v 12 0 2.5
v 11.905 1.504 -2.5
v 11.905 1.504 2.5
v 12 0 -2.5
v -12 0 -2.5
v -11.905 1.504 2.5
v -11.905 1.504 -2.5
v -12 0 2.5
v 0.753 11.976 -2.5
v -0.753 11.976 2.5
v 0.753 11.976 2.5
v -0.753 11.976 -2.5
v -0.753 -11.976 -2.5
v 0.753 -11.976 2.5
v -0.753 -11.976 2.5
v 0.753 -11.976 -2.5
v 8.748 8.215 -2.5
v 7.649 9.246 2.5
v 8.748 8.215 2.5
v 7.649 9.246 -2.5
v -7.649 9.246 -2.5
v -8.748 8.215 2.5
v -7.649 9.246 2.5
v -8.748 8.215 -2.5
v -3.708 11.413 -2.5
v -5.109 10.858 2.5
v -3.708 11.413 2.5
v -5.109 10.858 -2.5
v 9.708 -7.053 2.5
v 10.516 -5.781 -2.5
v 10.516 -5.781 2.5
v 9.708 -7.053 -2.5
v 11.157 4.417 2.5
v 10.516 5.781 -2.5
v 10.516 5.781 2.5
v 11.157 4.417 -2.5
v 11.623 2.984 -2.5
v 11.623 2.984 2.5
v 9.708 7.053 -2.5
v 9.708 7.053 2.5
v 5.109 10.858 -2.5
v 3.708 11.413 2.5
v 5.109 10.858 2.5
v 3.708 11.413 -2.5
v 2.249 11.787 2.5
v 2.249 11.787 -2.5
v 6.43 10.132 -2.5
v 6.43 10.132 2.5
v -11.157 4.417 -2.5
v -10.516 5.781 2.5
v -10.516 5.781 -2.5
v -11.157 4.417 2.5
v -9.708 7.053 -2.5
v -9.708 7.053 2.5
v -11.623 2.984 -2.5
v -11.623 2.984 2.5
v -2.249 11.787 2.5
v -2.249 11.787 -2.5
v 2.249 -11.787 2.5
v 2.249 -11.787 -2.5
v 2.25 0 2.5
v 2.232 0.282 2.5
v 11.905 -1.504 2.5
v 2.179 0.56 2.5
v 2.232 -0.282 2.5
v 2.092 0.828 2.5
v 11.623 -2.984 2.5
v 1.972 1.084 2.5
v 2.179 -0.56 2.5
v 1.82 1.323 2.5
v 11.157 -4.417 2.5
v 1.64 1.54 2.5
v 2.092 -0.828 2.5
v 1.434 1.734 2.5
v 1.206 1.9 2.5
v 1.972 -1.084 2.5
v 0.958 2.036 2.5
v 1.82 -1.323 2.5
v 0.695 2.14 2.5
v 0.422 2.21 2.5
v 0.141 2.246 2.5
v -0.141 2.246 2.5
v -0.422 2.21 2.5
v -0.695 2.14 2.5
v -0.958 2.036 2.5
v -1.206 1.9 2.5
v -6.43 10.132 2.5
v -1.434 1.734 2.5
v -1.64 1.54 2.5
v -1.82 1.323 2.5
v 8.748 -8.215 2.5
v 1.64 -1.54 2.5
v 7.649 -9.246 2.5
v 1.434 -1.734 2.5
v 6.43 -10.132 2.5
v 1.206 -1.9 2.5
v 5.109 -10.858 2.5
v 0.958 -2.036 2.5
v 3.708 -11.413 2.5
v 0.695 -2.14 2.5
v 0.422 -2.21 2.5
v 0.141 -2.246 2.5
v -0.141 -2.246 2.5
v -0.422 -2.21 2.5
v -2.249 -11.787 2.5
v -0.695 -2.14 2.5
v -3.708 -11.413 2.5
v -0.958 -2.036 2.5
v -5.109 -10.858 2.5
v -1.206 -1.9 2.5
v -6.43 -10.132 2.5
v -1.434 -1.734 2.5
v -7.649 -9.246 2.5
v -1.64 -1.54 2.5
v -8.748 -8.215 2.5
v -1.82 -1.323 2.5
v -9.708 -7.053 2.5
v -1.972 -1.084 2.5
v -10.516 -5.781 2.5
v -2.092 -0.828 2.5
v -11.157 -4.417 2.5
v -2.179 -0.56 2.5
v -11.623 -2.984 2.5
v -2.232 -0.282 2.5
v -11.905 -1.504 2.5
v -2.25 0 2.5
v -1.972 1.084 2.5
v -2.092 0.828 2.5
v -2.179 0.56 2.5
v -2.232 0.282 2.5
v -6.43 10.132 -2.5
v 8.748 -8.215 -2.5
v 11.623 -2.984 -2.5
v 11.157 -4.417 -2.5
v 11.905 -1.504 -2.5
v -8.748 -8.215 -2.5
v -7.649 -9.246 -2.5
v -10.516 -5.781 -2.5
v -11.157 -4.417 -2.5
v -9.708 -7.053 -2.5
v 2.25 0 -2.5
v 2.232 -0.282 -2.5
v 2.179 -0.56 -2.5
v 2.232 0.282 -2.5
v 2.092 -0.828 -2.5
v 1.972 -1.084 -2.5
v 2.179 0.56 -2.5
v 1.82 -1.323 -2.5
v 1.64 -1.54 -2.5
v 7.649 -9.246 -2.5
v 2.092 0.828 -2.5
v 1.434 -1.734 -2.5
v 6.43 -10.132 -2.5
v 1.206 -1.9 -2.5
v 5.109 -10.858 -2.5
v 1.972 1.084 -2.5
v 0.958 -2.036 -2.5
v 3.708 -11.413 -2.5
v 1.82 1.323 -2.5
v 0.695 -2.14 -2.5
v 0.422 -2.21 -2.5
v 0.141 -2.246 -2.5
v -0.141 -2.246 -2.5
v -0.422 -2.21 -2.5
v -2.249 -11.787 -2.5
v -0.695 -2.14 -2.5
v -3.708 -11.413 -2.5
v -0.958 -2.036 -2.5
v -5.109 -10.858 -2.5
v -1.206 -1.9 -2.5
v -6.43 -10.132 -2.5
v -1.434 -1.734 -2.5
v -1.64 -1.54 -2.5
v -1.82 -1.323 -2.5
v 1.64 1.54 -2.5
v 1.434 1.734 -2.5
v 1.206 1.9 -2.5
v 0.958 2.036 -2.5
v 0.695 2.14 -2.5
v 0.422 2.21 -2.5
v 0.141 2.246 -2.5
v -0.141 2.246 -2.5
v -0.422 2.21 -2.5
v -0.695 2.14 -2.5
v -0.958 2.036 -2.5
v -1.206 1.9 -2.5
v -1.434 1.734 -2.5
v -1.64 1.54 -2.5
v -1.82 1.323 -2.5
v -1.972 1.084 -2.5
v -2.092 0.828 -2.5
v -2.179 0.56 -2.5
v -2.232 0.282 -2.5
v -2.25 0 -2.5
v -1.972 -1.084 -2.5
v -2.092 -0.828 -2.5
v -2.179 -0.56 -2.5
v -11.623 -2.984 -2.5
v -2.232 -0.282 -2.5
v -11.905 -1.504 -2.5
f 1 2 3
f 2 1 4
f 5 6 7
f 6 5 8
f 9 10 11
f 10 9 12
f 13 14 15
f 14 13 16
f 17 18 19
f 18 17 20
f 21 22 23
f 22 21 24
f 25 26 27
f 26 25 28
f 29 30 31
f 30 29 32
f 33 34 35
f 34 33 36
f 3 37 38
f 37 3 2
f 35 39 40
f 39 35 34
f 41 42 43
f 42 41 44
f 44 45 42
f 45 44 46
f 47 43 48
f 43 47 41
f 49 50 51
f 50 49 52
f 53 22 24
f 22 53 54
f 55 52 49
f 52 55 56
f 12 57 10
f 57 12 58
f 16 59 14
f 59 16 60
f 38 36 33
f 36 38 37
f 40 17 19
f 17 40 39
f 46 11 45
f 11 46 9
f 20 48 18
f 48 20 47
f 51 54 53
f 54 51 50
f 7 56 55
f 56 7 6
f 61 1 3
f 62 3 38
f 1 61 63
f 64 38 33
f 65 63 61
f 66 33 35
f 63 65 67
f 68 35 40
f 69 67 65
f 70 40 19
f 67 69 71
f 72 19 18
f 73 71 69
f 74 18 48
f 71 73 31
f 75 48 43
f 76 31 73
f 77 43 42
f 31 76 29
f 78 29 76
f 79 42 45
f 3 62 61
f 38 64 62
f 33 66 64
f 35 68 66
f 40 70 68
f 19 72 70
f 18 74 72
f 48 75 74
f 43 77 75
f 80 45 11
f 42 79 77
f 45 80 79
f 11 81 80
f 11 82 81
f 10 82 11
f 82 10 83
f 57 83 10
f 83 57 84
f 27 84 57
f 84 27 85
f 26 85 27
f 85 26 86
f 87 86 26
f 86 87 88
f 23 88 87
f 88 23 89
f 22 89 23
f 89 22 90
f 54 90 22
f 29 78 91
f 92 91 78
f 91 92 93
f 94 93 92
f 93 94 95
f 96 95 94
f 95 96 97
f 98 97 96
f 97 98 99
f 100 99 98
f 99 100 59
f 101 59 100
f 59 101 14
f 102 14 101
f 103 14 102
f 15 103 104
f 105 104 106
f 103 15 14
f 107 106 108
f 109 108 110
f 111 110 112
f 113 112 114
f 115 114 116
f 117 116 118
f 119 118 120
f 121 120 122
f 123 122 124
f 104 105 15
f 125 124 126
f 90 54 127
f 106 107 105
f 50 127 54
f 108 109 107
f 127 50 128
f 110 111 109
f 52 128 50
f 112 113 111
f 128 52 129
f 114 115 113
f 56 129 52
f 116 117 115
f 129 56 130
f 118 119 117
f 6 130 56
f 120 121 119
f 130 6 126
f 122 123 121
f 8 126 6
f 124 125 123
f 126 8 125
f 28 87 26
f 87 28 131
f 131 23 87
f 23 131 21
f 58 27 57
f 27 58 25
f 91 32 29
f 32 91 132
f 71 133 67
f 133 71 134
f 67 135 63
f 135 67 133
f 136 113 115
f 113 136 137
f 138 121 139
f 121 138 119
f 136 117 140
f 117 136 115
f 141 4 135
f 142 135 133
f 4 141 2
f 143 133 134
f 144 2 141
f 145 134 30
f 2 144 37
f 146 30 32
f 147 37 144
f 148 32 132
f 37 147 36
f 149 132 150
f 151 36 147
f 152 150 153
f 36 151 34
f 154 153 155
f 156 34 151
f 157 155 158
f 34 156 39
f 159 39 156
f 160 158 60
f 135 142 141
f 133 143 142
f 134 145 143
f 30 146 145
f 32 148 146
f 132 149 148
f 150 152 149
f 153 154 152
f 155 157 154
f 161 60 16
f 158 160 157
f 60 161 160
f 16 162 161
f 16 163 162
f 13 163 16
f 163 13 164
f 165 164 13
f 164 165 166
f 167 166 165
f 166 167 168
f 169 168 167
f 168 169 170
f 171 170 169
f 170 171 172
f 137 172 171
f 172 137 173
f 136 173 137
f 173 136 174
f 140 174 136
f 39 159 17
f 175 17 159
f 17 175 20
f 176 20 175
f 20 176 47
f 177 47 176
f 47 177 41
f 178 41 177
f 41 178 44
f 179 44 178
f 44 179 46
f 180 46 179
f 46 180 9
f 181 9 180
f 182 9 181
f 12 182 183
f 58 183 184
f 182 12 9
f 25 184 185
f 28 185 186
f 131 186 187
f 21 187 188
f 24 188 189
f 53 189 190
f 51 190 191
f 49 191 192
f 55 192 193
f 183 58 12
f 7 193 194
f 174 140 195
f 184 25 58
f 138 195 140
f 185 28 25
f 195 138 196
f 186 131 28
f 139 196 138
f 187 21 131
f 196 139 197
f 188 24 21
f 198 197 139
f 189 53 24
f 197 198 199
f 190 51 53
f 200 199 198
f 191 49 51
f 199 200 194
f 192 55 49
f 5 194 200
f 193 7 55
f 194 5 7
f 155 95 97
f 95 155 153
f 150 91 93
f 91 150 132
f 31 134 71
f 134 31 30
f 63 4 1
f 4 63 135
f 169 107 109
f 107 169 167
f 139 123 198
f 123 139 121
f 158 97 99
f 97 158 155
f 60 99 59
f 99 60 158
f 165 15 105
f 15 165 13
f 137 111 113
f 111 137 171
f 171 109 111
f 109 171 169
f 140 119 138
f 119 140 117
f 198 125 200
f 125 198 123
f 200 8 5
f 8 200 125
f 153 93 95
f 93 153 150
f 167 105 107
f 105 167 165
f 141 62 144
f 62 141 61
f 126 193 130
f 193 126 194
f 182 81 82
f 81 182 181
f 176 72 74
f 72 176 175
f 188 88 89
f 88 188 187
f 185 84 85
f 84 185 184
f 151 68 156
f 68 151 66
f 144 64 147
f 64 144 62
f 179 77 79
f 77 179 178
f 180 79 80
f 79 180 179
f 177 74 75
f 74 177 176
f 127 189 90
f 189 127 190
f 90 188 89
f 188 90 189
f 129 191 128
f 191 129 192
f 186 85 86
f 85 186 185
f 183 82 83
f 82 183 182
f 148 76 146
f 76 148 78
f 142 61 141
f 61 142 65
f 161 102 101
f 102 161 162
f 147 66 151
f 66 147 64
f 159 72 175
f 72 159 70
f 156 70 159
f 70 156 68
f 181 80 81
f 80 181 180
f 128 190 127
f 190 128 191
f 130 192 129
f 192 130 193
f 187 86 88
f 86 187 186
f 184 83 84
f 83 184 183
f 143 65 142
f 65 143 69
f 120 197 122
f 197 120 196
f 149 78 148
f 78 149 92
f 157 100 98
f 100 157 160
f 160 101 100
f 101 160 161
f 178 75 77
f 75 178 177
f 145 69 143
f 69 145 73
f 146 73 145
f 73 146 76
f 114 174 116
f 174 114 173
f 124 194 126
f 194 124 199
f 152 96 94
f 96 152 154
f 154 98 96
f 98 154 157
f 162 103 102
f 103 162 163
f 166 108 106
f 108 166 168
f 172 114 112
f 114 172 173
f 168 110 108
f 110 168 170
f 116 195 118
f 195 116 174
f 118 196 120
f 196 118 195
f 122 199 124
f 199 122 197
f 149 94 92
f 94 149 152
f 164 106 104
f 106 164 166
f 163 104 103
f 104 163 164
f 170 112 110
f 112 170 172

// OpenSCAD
$fn = 50;


difference() {
	union() {
		translate(v = [0, 0, -2.5000000000]) {
			cylinder(h = 5, r = 12.0000000000);
		}
	}
	union() {
		translate(v = [0, 0, -100.0000000000]) {
			cylinder(h = 200, r = 2.2500000000);
		}
	}
}
